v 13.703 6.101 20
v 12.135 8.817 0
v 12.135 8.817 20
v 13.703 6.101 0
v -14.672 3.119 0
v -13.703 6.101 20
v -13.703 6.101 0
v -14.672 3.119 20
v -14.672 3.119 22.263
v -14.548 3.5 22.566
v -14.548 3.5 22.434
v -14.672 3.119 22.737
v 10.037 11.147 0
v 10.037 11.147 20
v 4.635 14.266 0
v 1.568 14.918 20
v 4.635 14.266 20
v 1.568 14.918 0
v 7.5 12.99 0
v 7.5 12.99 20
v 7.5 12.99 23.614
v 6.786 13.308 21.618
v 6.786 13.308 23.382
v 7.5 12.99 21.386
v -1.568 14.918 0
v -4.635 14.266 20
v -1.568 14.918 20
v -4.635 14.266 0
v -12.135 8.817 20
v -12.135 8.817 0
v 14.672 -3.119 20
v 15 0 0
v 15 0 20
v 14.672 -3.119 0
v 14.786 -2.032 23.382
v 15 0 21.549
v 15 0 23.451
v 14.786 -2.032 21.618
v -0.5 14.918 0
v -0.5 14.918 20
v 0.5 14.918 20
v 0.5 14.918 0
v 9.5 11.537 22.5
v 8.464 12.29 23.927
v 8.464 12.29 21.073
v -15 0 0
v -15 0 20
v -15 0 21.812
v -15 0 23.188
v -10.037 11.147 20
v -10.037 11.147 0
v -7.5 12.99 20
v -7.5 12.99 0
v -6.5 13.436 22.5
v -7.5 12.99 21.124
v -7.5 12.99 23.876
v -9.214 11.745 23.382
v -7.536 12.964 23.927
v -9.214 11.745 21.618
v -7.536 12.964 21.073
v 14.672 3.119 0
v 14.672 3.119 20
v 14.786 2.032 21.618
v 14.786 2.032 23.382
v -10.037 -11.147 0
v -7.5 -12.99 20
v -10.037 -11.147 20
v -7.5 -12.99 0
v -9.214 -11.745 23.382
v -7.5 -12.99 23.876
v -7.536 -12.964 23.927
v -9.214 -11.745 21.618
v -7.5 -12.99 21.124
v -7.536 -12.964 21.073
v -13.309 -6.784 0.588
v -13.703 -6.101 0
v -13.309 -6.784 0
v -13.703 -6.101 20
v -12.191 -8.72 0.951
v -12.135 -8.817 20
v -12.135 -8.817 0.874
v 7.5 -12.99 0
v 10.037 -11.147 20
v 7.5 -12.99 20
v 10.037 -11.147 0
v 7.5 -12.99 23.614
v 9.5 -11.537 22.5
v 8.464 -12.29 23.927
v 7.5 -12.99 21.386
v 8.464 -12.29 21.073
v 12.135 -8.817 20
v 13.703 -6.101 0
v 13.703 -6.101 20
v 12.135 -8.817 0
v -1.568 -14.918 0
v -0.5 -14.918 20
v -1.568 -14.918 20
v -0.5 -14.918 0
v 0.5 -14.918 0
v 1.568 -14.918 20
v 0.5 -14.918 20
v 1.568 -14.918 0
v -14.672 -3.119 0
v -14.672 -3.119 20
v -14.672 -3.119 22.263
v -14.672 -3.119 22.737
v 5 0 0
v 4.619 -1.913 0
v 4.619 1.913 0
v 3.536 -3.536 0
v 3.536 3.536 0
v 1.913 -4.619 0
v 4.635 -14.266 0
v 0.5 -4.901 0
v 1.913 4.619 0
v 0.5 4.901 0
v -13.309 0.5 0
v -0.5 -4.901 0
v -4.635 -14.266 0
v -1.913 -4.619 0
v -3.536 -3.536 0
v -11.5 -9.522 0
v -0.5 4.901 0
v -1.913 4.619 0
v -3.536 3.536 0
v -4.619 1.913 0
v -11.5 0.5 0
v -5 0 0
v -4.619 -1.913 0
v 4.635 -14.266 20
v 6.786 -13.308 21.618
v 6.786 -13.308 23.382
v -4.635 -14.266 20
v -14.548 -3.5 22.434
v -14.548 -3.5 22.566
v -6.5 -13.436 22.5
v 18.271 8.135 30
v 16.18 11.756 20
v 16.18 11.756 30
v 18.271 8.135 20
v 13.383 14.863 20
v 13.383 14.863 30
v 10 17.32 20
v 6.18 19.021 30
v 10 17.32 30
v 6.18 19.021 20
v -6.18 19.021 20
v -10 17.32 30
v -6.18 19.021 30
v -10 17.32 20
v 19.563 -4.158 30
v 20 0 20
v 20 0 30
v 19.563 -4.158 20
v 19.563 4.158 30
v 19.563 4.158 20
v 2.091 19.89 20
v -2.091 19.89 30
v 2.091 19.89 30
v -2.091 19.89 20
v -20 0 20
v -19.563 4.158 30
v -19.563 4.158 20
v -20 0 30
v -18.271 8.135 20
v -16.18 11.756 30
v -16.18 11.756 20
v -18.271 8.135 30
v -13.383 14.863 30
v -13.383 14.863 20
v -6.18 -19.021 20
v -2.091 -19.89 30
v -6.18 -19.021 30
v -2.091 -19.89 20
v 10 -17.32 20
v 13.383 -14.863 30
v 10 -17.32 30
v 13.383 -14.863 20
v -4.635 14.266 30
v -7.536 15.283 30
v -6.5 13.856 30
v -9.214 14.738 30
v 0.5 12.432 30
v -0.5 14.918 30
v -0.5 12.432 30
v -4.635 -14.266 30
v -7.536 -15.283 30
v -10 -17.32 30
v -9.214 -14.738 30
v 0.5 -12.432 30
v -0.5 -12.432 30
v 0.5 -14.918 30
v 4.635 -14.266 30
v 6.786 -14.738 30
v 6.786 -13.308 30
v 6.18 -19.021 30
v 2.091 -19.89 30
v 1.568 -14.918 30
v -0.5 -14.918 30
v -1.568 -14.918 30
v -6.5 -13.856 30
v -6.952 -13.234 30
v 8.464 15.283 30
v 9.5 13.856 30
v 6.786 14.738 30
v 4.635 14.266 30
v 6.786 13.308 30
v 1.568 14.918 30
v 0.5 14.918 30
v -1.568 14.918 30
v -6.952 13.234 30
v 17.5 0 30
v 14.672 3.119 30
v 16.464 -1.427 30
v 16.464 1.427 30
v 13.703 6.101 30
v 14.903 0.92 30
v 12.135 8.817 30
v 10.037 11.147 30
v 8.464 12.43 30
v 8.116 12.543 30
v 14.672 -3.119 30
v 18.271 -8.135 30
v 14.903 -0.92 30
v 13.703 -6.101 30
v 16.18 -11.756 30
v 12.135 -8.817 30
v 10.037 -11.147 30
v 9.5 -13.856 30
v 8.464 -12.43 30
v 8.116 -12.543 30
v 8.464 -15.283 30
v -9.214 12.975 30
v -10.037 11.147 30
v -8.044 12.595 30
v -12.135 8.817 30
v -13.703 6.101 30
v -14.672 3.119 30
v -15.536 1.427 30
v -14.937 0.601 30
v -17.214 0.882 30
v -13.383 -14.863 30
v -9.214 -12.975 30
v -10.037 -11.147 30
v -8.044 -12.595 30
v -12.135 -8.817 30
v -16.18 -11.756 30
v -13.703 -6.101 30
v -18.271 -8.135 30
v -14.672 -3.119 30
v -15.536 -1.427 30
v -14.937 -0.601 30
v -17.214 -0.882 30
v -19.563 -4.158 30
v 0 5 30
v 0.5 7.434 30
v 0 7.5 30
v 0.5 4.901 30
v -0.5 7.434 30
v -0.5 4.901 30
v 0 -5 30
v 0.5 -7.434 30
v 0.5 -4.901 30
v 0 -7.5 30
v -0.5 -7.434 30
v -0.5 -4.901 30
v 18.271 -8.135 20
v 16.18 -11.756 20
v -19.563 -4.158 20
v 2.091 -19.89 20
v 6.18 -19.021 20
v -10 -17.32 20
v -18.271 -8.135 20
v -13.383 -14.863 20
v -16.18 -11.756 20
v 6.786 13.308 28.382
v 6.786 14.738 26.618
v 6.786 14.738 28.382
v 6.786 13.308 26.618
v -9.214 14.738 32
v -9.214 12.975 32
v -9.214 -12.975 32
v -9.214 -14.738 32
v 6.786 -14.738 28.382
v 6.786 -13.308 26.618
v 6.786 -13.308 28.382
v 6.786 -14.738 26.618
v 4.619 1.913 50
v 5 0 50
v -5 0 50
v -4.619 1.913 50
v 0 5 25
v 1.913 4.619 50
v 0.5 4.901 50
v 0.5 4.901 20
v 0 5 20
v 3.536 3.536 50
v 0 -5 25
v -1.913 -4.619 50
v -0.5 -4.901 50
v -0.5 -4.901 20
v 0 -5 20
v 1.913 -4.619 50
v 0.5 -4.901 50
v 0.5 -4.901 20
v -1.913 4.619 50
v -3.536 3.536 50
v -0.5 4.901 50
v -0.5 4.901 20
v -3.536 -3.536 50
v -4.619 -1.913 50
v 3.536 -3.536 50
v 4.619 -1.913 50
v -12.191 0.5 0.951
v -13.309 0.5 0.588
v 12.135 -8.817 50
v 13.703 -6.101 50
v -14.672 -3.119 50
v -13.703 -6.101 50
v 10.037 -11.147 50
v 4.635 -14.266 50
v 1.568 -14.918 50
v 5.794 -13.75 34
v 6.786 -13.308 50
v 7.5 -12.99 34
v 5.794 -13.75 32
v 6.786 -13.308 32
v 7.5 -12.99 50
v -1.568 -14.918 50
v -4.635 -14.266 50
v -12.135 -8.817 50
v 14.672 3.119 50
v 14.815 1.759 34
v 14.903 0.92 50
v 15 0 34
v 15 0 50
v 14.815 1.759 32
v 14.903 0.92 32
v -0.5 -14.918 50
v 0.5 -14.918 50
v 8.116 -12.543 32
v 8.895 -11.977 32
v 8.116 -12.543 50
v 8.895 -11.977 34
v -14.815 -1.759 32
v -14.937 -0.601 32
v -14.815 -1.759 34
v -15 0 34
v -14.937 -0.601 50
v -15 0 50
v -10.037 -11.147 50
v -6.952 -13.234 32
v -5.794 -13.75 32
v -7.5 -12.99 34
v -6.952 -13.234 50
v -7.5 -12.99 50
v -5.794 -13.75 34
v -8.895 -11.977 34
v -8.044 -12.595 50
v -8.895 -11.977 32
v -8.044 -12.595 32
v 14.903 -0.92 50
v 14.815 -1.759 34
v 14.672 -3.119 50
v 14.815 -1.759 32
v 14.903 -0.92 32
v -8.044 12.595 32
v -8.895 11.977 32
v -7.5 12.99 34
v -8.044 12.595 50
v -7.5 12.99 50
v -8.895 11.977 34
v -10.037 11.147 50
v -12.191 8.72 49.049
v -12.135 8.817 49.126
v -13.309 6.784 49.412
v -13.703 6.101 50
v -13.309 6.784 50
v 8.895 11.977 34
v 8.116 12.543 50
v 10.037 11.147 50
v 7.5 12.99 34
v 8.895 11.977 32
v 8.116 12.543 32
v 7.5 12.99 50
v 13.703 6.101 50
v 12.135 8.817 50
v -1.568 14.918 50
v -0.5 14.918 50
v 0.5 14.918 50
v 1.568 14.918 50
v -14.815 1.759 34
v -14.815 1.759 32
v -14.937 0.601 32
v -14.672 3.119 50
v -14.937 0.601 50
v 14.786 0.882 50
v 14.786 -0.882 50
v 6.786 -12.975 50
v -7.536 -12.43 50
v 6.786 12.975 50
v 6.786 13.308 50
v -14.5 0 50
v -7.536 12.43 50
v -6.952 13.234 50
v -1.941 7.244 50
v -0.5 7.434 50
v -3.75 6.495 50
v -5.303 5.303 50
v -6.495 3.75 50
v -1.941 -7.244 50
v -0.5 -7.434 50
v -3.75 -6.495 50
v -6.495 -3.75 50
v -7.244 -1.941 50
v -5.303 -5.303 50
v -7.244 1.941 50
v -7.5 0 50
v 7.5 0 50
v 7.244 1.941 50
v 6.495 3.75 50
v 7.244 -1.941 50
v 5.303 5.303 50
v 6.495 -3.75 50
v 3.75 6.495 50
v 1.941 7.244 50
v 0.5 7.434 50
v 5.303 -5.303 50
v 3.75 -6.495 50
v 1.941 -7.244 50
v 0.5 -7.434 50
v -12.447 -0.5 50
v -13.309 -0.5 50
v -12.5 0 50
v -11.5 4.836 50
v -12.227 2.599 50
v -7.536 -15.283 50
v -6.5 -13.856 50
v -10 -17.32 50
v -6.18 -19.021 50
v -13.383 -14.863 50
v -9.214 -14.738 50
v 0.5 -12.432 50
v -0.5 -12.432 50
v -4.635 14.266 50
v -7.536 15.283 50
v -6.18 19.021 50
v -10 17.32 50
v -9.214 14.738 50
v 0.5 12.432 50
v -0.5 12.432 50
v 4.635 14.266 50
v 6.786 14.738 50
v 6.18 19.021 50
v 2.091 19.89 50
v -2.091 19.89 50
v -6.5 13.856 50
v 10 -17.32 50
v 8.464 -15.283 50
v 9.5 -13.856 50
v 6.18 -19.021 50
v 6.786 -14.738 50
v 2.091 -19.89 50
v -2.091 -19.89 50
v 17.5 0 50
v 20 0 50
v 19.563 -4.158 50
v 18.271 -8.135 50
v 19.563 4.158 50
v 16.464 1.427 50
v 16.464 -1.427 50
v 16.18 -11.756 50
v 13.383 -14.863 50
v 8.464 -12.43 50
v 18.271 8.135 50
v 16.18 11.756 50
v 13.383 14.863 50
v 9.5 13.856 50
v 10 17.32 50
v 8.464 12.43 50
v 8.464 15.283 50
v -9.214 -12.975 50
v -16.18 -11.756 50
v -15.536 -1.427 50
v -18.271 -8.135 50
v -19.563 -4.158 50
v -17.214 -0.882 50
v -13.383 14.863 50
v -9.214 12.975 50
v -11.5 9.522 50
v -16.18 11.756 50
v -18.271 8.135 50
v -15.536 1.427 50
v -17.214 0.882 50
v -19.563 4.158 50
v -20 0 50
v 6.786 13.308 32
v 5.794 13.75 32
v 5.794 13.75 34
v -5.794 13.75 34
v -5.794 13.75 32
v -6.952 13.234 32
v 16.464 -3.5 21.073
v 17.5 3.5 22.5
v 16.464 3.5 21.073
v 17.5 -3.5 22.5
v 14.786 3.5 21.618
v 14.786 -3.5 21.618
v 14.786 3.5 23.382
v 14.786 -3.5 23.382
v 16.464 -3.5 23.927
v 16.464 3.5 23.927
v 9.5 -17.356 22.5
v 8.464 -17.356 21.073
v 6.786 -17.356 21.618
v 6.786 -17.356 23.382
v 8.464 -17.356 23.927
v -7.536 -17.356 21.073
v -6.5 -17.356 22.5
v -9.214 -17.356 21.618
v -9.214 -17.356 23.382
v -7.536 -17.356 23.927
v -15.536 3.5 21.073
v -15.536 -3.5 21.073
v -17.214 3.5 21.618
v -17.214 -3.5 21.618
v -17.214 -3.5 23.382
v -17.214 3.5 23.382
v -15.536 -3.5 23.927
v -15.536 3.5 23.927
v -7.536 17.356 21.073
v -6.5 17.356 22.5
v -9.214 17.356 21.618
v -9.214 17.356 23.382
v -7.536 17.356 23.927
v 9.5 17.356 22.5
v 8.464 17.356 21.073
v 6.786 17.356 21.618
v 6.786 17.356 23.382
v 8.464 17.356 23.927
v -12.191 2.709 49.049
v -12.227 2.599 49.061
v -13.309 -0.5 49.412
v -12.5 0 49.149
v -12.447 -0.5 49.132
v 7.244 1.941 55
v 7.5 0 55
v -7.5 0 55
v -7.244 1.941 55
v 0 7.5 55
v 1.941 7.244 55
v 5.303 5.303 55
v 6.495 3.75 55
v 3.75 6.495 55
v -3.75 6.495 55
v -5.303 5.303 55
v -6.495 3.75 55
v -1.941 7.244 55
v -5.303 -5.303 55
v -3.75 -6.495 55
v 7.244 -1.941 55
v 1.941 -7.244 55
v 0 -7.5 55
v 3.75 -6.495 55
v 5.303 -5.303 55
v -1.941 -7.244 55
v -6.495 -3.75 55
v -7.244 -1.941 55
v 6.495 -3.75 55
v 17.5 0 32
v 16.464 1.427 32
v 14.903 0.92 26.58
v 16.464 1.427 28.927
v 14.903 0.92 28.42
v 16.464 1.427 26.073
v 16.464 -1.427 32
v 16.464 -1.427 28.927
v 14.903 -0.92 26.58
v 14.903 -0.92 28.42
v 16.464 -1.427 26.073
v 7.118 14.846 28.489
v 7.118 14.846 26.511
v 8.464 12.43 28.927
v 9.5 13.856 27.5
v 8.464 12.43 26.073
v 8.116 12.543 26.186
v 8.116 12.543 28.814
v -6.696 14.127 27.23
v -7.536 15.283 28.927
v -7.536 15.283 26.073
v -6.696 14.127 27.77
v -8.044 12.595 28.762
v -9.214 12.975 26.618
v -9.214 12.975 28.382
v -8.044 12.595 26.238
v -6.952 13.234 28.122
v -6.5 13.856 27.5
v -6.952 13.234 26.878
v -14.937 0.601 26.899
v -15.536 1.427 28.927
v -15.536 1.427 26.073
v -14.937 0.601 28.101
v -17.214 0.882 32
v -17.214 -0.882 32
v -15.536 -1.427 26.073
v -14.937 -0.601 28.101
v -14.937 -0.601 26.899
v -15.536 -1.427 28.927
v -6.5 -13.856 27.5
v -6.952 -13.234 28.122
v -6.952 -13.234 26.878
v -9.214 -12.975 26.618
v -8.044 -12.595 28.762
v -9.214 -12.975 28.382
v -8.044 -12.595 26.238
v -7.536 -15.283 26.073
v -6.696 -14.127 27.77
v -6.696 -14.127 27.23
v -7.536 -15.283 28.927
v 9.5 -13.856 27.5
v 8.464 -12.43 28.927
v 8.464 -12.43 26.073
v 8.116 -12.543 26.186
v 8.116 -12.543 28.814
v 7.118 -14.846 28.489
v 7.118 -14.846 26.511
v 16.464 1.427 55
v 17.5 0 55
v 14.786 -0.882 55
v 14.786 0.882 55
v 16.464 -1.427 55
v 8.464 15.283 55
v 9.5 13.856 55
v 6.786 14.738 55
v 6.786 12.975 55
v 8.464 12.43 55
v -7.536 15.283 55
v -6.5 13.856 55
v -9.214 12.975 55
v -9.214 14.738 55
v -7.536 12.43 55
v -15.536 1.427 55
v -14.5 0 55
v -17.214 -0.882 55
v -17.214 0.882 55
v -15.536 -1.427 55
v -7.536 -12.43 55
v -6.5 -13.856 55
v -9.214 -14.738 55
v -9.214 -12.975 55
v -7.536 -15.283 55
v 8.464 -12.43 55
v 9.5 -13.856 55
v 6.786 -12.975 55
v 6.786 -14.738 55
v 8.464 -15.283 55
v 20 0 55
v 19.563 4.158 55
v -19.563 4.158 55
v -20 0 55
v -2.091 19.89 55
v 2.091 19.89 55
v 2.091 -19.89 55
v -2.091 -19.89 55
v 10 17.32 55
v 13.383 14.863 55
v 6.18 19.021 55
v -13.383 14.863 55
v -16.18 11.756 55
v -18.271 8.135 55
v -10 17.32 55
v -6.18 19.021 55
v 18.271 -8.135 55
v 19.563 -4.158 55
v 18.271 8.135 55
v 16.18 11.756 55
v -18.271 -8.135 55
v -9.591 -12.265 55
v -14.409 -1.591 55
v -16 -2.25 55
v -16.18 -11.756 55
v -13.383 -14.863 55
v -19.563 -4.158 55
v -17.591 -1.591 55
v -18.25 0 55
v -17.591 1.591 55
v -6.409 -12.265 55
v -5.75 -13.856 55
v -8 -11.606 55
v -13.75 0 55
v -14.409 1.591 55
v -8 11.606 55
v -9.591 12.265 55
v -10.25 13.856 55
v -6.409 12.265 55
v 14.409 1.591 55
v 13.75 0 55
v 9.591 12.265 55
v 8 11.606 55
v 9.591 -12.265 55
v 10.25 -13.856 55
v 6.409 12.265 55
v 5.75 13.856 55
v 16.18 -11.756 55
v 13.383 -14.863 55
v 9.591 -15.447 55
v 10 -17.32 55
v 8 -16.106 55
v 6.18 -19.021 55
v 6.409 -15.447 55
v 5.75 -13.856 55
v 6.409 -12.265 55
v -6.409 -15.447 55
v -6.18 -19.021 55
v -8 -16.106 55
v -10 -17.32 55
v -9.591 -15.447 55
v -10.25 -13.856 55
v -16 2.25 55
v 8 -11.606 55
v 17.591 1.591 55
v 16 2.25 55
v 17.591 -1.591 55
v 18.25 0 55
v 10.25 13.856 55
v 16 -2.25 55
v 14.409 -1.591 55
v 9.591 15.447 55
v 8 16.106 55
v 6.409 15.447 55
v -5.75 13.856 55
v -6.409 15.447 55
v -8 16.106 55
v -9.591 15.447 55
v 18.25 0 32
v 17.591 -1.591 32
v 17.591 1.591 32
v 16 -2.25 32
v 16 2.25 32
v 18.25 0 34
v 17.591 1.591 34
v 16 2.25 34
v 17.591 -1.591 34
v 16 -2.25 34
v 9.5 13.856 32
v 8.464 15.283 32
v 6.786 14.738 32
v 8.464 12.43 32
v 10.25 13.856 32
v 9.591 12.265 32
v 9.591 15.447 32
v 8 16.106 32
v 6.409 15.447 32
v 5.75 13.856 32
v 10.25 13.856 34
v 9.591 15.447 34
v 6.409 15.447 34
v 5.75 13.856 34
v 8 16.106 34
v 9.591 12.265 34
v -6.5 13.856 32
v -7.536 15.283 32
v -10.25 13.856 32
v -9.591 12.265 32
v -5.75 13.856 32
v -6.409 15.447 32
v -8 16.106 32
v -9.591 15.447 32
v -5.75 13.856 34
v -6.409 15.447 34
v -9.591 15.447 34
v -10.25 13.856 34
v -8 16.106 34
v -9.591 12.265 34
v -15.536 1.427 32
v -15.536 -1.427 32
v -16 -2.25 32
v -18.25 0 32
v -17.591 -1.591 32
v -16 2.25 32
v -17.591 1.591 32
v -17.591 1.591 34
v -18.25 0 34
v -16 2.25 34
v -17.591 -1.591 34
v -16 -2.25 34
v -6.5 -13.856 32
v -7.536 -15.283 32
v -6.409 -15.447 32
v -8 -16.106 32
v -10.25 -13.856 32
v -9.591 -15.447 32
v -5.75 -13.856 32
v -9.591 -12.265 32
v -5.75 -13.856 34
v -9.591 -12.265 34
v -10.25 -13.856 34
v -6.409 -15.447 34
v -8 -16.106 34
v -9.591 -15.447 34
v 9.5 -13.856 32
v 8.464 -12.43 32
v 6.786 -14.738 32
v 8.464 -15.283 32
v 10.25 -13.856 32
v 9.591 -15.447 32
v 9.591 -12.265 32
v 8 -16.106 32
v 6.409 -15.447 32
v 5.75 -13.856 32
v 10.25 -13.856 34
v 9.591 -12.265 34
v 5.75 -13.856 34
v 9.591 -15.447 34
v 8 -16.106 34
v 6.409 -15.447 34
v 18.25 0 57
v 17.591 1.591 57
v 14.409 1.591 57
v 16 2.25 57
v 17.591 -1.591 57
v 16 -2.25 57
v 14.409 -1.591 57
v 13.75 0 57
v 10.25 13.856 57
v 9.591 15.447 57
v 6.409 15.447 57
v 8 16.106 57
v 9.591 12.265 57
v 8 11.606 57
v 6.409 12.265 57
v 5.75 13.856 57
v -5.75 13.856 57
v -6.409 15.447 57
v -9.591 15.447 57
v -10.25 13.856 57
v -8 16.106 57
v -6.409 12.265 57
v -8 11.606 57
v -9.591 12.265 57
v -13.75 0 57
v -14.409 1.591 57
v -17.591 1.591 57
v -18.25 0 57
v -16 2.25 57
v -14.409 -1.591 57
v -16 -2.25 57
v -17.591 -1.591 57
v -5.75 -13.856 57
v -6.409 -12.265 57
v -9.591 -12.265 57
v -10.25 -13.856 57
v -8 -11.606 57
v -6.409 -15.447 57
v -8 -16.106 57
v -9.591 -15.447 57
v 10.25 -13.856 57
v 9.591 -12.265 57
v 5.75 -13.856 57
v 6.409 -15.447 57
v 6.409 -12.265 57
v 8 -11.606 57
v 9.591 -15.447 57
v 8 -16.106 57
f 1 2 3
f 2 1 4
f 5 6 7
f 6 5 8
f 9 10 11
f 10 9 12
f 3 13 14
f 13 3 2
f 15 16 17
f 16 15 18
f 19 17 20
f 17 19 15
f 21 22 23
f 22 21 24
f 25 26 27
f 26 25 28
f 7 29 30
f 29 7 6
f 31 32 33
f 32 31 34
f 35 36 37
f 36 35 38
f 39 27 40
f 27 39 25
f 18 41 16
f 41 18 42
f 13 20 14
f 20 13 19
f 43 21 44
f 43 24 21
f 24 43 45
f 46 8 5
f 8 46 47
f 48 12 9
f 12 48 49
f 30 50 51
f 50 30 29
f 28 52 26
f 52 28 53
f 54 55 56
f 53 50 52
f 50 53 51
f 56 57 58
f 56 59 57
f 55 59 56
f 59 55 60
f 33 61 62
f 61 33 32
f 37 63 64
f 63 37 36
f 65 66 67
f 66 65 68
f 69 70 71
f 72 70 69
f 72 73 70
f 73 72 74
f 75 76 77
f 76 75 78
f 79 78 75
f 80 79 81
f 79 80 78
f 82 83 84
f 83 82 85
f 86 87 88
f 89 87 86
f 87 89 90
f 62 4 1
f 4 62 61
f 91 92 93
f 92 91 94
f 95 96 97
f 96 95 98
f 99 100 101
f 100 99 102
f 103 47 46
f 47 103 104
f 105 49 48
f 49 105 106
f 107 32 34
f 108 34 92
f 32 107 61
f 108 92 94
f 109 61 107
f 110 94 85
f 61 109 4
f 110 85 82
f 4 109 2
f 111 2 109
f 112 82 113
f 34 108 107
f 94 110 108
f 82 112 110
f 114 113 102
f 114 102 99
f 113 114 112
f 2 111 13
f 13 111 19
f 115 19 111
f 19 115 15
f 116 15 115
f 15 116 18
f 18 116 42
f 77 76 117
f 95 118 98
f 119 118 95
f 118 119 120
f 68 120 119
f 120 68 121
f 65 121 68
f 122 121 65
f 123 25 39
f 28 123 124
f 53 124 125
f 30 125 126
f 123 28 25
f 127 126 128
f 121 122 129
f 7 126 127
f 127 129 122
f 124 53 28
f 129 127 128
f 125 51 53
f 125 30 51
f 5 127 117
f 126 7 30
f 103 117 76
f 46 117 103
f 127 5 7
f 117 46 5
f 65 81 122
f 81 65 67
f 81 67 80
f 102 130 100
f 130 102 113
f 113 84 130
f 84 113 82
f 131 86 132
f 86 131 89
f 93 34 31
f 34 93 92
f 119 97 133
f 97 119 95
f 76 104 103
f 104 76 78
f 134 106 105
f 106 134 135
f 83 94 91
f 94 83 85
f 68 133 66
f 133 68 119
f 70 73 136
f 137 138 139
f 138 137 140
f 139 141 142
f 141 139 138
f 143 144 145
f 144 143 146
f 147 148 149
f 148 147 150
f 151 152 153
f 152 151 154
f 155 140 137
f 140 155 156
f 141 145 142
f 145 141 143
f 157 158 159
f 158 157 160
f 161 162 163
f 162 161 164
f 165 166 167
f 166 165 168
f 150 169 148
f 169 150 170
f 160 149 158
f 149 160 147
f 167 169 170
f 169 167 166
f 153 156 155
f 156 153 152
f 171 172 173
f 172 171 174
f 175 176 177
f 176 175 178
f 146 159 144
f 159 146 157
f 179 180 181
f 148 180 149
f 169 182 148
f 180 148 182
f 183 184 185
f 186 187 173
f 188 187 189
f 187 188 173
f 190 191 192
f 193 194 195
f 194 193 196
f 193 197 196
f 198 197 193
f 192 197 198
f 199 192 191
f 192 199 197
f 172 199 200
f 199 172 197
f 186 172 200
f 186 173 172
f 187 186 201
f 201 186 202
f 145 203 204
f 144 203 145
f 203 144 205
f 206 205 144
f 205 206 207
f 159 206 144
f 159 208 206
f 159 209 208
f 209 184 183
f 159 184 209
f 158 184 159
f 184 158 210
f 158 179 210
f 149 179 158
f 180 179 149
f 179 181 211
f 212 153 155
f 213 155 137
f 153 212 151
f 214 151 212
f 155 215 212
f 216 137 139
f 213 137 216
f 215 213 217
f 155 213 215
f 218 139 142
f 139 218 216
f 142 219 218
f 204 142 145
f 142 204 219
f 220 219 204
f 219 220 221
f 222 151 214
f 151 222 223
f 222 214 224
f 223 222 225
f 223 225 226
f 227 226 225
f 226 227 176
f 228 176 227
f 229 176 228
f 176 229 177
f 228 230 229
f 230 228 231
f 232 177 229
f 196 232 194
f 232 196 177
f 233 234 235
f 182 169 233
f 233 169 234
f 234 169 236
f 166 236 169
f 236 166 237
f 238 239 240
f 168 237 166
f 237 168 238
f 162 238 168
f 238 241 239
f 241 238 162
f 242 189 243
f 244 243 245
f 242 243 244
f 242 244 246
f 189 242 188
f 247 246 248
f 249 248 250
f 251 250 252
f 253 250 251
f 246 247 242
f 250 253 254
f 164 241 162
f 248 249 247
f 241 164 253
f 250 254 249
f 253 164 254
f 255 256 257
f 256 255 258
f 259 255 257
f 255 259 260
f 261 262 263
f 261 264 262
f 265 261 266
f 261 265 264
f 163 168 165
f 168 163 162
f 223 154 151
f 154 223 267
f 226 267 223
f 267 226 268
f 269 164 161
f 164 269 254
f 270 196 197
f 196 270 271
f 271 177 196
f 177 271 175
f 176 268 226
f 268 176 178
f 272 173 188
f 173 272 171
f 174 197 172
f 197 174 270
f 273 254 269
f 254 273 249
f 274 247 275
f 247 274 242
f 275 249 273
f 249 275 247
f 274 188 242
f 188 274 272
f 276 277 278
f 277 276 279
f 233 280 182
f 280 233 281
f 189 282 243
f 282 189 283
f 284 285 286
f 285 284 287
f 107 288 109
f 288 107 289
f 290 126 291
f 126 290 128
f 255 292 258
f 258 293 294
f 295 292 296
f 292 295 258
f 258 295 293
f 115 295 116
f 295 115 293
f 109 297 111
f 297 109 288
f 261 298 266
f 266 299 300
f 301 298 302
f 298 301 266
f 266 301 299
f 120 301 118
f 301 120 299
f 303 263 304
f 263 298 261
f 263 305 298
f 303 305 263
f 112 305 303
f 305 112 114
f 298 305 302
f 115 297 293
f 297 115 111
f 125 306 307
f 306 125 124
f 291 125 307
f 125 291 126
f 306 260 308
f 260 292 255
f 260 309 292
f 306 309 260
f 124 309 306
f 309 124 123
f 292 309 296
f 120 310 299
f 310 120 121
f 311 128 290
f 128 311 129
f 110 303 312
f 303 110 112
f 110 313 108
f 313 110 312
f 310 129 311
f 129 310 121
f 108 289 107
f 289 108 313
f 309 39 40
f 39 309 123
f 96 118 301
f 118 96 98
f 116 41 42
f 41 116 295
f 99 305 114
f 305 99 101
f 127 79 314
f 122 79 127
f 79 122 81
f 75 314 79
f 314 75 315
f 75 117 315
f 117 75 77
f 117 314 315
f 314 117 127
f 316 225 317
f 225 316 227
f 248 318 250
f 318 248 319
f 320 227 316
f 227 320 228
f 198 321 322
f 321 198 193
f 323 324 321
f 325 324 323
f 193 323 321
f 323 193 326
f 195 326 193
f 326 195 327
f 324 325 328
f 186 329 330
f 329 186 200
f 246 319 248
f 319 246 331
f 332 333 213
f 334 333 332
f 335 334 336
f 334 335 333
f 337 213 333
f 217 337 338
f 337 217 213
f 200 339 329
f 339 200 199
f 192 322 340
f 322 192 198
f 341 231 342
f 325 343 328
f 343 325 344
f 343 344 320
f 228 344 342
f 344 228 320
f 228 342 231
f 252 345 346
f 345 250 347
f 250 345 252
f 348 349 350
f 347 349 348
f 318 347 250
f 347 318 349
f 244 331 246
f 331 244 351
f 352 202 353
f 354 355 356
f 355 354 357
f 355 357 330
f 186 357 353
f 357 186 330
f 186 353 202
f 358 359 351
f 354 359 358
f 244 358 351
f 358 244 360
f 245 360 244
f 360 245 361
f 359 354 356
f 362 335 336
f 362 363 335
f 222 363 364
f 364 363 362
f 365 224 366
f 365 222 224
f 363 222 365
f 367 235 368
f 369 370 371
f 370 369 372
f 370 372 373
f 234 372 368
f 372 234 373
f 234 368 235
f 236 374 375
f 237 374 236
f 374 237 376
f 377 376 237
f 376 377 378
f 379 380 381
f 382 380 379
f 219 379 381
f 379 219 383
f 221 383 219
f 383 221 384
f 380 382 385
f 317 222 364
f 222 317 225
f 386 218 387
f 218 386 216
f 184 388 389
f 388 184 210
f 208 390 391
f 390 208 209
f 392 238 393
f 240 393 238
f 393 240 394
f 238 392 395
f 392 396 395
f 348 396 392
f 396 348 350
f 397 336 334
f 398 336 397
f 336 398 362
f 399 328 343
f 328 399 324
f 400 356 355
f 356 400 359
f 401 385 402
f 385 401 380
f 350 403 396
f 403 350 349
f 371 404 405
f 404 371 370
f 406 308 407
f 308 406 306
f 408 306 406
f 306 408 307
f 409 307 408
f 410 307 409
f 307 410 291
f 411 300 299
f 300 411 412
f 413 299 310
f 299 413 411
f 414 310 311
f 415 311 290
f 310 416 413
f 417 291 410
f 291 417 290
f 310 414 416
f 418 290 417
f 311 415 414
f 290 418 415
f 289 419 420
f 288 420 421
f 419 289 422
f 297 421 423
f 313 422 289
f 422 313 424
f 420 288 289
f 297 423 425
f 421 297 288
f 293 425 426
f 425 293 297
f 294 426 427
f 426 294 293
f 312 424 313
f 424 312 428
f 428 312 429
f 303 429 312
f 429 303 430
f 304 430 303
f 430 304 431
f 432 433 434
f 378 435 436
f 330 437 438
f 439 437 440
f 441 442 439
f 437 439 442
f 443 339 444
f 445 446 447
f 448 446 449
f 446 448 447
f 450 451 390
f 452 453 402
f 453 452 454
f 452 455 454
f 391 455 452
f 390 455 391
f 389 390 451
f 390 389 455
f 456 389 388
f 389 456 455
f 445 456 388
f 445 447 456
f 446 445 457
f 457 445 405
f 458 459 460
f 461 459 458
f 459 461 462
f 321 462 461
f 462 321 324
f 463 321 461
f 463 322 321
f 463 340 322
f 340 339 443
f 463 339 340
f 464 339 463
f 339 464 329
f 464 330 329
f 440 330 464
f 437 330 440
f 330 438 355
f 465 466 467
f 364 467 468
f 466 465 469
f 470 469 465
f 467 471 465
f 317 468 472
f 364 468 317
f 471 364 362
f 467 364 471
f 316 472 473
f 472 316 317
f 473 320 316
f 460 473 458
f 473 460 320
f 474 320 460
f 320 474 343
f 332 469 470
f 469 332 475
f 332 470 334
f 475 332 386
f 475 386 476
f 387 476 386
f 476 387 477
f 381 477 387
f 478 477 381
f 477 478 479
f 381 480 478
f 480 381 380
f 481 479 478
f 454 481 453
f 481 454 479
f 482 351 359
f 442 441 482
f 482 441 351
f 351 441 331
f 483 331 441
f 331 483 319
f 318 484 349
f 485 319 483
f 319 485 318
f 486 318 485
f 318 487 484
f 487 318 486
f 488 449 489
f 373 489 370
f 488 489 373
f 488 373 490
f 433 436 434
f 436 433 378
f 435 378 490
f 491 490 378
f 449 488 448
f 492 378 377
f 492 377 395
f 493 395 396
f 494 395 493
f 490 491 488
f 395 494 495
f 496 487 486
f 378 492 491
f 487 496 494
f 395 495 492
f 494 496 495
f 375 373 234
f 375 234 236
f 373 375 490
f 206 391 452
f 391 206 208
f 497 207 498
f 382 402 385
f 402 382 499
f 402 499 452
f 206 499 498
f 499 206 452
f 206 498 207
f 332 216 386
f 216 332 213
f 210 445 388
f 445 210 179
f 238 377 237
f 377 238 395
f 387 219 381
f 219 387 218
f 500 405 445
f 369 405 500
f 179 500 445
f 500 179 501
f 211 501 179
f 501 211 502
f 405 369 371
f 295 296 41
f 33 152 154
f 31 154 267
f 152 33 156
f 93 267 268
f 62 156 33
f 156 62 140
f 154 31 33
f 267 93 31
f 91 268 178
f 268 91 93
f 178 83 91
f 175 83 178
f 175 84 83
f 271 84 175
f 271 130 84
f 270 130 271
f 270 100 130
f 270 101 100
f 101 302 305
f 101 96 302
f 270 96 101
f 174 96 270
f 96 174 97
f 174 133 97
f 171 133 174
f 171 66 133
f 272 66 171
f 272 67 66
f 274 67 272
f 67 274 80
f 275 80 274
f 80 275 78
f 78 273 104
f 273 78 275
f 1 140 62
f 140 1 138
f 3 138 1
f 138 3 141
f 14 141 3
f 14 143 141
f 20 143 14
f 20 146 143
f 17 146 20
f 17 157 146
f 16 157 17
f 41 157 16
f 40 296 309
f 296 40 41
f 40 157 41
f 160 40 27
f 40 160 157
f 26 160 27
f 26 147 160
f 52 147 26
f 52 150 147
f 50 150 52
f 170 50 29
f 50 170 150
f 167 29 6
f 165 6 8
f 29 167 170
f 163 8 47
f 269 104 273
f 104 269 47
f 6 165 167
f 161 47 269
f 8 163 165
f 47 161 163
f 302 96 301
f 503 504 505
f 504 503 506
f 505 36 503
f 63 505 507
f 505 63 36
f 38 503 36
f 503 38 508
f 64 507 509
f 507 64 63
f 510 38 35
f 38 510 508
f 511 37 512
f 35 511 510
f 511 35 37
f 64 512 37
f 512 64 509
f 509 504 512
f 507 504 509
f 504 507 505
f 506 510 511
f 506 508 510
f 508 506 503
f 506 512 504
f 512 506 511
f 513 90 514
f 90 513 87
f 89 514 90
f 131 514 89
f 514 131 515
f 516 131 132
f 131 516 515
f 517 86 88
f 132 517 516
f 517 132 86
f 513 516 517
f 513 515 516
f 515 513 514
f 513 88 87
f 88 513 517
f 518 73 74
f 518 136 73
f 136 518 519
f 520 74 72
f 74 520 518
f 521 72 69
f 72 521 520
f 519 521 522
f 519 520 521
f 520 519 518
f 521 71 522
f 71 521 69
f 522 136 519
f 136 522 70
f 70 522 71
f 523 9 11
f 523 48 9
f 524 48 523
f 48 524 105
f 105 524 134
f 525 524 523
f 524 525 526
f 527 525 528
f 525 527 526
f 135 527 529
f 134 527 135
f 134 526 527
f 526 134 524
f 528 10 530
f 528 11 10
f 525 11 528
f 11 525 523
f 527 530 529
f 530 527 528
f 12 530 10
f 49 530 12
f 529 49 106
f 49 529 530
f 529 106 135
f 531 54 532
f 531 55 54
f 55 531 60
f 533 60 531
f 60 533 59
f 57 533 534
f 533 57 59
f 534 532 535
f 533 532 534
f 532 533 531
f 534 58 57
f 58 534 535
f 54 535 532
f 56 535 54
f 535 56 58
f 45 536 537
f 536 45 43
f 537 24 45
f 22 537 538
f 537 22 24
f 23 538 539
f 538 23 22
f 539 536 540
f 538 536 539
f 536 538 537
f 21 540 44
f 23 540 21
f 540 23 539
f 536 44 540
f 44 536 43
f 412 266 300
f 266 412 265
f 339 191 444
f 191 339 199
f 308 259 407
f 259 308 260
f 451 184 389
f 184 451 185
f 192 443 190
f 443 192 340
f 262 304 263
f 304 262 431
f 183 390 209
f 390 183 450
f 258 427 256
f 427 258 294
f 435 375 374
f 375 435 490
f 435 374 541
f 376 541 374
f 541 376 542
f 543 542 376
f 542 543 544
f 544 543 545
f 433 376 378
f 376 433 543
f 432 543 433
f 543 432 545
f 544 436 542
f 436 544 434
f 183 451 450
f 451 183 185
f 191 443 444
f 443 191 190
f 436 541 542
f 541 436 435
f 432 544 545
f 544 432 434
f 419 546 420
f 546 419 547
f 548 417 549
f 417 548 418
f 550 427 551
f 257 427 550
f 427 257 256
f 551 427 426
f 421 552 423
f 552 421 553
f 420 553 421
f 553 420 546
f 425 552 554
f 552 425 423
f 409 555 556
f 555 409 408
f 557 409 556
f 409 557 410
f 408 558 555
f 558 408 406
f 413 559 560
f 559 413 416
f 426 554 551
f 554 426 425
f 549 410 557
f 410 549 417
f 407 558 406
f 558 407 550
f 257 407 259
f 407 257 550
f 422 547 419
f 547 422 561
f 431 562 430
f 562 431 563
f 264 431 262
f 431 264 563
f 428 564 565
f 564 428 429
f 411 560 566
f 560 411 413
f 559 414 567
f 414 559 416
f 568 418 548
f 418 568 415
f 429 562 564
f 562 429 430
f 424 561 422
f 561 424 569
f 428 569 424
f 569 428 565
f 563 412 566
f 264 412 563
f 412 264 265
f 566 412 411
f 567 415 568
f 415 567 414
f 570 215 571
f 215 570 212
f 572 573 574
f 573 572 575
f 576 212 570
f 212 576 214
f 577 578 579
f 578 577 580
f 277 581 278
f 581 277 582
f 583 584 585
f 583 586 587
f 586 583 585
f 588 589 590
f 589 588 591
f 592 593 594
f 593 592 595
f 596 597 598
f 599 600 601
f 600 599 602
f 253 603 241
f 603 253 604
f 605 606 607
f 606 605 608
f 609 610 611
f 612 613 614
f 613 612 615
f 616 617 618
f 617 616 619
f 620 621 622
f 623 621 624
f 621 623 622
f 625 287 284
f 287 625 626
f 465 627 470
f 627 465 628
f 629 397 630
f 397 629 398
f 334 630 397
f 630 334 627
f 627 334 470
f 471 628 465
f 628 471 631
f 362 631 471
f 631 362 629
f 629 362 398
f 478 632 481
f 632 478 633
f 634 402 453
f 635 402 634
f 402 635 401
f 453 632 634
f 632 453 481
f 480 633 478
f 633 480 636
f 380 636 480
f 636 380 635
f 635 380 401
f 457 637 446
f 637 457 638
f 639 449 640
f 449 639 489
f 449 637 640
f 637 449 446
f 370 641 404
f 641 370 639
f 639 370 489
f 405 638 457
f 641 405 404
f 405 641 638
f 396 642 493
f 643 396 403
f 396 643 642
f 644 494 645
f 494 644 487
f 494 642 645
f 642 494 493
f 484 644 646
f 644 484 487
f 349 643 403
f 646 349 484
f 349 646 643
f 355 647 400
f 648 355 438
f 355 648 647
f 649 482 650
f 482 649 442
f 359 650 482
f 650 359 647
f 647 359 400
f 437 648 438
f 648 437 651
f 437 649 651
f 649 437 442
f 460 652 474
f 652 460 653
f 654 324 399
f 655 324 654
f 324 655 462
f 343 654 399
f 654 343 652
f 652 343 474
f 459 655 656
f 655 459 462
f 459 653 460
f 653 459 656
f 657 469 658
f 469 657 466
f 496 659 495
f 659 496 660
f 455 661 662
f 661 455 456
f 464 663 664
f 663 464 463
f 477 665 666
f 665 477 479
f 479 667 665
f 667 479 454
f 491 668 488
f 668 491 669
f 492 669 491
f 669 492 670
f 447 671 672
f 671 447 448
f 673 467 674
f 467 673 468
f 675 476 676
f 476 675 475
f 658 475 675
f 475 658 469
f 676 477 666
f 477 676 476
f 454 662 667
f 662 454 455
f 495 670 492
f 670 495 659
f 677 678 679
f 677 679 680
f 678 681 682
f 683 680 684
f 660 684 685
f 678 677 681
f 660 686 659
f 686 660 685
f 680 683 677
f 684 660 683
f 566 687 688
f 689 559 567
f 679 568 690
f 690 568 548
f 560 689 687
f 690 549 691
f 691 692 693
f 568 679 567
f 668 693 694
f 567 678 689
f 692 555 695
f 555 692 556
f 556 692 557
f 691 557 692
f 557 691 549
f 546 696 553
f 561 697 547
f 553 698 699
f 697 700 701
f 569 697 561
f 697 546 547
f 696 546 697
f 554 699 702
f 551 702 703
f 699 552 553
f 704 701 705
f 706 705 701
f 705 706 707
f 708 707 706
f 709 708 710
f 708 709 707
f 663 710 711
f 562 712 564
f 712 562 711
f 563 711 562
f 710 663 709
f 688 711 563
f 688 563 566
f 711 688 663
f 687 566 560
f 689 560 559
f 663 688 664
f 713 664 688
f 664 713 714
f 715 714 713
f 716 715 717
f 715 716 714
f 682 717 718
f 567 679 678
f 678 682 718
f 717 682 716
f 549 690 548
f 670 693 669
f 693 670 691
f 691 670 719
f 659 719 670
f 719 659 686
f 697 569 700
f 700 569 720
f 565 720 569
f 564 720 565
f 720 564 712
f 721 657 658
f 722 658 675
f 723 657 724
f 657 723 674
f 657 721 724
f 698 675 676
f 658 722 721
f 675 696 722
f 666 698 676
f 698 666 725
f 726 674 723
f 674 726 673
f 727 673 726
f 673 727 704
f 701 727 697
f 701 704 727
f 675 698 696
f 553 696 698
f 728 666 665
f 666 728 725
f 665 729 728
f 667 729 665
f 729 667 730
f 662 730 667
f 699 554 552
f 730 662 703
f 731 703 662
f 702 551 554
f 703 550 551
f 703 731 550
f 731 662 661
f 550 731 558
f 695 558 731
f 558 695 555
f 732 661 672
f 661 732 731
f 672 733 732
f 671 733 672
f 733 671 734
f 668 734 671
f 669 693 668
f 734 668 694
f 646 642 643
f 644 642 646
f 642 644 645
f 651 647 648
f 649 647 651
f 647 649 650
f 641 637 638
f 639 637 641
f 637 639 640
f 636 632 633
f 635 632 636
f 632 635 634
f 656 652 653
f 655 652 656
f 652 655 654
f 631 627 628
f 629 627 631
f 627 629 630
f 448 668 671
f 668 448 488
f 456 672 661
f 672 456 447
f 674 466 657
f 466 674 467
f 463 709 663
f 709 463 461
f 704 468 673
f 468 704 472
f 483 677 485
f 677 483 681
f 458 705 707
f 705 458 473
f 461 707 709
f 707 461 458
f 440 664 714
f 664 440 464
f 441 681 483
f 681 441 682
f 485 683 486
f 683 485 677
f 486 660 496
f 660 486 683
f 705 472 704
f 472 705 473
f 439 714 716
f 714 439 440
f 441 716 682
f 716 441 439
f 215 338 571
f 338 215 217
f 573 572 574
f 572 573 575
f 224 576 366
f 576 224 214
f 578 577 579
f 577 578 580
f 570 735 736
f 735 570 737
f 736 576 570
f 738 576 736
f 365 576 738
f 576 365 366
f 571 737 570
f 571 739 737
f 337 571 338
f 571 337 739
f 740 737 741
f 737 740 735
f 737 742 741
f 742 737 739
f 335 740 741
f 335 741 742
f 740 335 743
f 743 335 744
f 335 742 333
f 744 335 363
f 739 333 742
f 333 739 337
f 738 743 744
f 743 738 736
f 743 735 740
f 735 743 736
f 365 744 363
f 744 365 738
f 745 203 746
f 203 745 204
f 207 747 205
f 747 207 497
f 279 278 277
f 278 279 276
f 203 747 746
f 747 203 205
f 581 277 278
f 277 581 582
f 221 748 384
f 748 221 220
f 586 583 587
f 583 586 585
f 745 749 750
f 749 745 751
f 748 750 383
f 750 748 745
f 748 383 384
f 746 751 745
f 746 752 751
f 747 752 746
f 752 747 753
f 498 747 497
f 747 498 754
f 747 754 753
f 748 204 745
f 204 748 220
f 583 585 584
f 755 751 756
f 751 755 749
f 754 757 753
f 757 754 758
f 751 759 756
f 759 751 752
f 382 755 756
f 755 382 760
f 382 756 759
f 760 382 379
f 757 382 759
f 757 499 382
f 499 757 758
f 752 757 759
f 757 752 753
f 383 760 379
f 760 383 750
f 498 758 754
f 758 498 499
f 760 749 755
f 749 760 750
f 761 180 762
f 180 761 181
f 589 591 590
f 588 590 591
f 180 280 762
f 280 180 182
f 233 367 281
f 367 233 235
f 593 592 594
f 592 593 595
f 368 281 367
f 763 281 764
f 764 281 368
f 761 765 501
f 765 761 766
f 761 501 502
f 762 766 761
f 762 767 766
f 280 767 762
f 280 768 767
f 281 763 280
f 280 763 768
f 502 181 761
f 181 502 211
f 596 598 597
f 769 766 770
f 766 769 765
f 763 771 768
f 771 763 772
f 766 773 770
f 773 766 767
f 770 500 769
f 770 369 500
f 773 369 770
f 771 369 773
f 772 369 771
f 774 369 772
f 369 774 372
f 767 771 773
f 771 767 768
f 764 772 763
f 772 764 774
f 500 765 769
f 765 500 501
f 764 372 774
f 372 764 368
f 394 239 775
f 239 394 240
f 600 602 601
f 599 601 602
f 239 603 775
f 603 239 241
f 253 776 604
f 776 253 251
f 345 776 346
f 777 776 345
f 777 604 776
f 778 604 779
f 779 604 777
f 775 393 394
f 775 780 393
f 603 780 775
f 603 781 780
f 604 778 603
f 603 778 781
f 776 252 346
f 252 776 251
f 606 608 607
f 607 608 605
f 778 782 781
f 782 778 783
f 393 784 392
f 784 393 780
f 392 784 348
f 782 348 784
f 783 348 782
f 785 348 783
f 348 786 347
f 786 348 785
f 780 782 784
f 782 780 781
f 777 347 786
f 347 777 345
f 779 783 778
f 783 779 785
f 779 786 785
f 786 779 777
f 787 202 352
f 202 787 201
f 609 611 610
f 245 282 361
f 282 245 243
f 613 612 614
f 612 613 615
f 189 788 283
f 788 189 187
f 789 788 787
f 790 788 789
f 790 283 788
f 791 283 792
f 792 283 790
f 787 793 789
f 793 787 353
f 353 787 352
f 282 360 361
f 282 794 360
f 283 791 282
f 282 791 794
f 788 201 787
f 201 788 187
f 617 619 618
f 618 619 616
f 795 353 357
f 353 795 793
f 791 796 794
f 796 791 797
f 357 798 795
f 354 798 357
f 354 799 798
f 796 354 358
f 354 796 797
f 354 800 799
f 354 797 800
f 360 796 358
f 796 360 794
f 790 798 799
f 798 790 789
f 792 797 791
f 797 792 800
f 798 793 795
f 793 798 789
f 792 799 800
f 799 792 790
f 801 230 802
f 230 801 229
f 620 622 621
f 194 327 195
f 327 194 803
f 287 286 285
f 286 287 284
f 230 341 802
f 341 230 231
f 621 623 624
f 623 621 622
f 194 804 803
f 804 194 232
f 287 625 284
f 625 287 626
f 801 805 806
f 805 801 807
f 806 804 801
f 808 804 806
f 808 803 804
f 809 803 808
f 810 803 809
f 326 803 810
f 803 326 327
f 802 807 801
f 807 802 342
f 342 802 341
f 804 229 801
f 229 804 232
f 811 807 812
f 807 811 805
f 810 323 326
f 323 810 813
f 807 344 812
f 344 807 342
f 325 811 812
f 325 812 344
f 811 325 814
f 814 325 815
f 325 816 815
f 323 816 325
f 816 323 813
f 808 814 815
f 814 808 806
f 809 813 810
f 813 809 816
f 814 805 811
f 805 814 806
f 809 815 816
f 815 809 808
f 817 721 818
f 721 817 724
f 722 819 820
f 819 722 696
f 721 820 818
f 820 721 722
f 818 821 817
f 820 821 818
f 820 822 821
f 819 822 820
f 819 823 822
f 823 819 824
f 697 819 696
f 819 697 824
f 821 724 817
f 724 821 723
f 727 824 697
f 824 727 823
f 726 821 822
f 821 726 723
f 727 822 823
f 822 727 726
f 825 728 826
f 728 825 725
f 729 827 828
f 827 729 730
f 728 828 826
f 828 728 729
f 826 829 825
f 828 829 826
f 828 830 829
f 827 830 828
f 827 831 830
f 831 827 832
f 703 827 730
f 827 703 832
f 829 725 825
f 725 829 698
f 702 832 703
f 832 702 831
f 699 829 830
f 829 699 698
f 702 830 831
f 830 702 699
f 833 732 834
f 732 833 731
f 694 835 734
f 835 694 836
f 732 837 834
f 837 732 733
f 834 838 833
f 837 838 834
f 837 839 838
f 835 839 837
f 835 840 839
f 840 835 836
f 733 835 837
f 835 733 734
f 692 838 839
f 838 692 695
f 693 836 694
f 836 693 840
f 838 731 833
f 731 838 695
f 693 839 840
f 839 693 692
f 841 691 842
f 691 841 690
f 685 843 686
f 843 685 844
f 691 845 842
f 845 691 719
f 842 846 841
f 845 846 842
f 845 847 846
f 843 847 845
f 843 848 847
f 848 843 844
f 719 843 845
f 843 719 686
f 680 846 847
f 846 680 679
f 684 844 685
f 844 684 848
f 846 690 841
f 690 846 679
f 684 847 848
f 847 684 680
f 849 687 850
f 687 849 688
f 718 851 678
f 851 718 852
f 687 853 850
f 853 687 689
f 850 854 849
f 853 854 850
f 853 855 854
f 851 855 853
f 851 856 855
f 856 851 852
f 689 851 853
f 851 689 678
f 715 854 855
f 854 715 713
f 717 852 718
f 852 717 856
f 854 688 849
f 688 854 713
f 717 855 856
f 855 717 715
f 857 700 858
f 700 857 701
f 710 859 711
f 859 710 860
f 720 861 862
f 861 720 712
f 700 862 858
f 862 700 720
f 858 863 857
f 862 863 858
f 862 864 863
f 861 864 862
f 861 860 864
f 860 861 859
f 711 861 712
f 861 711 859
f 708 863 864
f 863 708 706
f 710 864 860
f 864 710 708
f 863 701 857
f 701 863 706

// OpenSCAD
// Parameters
hub_diameter = 30;
hub_length = 25;
bore_diameter = 10;
flange_diameter = 40;
flange_thickness = 5;
bolt_hole_diameter = 3;
bolt_circle_diameter = 32;
num_bolts = 6;
bellows_length = 20;
bellows_outer_diameter = 25;
bellows_inner_diameter = 15;
bellows_ridges = 5;
slit_width = 1;
set_screw_diameter = 2;

// Modules
module shaft_hub() {
    difference() {
        union() {
            // Main hub body
            cylinder(d=hub_diameter, h=hub_length);
            // Flange
            translate([0, 0, hub_length])
                cylinder(d=flange_diameter, h=flange_thickness);
        }
        // Bore
        translate([0, 0, -1])
            cylinder(d=bore_diameter, h=hub_length + flange_thickness + 2);
        // Slit
        translate([-slit_width/2, -hub_diameter/2, 0])
            cube([slit_width, hub_diameter, hub_length]);
        // Set screw hole
        rotate([90, 0, 0])
            translate([-hub_length/2, 0, hub_diameter/2 - 2])
                cylinder(d=set_screw_diameter, h=hub_length + 2, center=true);
        // Bolt holes in flange
        for (i = [0 : 360/num_bolts : 360 - 360/num_bolts]) {
            angle = i;
            x = bolt_circle_diameter/2 * cos(angle);
            y = bolt_circle_diameter/2 * sin(angle);
            translate([x, y, hub_length + flange_thickness/2])
                rotate([90, 0, 0])
                    cylinder(d=bolt_hole_diameter, h=flange_thickness + 2, center=true);
        }
    }
}

module bellows() {
    translate([0, 0, hub_length + flange_thickness])
        difference() {
            cylinder(d=bellows_outer_diameter, h=bellows_length);
            translate([0, 0, -1])
                cylinder(d=bellows_inner_diameter, h=bellows_length + 2);
        }
}

module flange_ring() {
    difference() {
        cylinder(d=flange_diameter, h=flange_thickness);
        // Center hole
        cylinder(d=bellows_inner_diameter, h=flange_thickness + 1);
        // Bolt holes
        for (i = [0 : 360/num_bolts : 360 - 360/num_bolts]) {
            angle = i;
            x = bolt_circle_diameter/2 * cos(angle);
            y = bolt_circle_diameter/2 * sin(angle);
            translate([x, y, 0])
                cylinder(d=bolt_hole_diameter, h=flange_thickness + 1);
        }
    }
}

module bolt() {
    union() {
        // Shaft
        cylinder(d=bolt_hole_diameter, h=flange_thickness + 2);
        // Head
        translate([0, 0, flange_thickness + 2])
            cylinder(d=bolt_hole_diameter * 1.5, h=2);
    }
}

module nut() {
    cylinder(d=bolt_hole_diameter * 1.5, h=2);
}

// Assembly
module coupling() {
    // Input hub
    shaft_hub();
    // Output hub (mirrored)
    translate([0, 0, hub_length + flange_thickness + bellows_length])
        rotate([180, 0, 0])
            shaft_hub();
    // Bellows
    bellows();
    // Flange rings
    translate([0, 0, hub_length])
        flange_ring();
    translate([0, 0, hub_length + flange_thickness + bellows_length])
        flange_ring();
    // Bolts and nuts
    for (i = [0 : 360/num_bolts : 360 - 360/num_bolts]) {
        angle = i;
        x = bolt_circle_diameter/2 * cos(angle);
        y = bolt_circle_diameter/2 * sin(angle);
        // Bolts
        translate([x, y, hub_length])
            bolt();
        // Nuts
        translate([x, y, hub_length + flange_thickness + bellows_length + flange_thickness])
            nut();
    }
}

// Render the full coupling
coupling();
